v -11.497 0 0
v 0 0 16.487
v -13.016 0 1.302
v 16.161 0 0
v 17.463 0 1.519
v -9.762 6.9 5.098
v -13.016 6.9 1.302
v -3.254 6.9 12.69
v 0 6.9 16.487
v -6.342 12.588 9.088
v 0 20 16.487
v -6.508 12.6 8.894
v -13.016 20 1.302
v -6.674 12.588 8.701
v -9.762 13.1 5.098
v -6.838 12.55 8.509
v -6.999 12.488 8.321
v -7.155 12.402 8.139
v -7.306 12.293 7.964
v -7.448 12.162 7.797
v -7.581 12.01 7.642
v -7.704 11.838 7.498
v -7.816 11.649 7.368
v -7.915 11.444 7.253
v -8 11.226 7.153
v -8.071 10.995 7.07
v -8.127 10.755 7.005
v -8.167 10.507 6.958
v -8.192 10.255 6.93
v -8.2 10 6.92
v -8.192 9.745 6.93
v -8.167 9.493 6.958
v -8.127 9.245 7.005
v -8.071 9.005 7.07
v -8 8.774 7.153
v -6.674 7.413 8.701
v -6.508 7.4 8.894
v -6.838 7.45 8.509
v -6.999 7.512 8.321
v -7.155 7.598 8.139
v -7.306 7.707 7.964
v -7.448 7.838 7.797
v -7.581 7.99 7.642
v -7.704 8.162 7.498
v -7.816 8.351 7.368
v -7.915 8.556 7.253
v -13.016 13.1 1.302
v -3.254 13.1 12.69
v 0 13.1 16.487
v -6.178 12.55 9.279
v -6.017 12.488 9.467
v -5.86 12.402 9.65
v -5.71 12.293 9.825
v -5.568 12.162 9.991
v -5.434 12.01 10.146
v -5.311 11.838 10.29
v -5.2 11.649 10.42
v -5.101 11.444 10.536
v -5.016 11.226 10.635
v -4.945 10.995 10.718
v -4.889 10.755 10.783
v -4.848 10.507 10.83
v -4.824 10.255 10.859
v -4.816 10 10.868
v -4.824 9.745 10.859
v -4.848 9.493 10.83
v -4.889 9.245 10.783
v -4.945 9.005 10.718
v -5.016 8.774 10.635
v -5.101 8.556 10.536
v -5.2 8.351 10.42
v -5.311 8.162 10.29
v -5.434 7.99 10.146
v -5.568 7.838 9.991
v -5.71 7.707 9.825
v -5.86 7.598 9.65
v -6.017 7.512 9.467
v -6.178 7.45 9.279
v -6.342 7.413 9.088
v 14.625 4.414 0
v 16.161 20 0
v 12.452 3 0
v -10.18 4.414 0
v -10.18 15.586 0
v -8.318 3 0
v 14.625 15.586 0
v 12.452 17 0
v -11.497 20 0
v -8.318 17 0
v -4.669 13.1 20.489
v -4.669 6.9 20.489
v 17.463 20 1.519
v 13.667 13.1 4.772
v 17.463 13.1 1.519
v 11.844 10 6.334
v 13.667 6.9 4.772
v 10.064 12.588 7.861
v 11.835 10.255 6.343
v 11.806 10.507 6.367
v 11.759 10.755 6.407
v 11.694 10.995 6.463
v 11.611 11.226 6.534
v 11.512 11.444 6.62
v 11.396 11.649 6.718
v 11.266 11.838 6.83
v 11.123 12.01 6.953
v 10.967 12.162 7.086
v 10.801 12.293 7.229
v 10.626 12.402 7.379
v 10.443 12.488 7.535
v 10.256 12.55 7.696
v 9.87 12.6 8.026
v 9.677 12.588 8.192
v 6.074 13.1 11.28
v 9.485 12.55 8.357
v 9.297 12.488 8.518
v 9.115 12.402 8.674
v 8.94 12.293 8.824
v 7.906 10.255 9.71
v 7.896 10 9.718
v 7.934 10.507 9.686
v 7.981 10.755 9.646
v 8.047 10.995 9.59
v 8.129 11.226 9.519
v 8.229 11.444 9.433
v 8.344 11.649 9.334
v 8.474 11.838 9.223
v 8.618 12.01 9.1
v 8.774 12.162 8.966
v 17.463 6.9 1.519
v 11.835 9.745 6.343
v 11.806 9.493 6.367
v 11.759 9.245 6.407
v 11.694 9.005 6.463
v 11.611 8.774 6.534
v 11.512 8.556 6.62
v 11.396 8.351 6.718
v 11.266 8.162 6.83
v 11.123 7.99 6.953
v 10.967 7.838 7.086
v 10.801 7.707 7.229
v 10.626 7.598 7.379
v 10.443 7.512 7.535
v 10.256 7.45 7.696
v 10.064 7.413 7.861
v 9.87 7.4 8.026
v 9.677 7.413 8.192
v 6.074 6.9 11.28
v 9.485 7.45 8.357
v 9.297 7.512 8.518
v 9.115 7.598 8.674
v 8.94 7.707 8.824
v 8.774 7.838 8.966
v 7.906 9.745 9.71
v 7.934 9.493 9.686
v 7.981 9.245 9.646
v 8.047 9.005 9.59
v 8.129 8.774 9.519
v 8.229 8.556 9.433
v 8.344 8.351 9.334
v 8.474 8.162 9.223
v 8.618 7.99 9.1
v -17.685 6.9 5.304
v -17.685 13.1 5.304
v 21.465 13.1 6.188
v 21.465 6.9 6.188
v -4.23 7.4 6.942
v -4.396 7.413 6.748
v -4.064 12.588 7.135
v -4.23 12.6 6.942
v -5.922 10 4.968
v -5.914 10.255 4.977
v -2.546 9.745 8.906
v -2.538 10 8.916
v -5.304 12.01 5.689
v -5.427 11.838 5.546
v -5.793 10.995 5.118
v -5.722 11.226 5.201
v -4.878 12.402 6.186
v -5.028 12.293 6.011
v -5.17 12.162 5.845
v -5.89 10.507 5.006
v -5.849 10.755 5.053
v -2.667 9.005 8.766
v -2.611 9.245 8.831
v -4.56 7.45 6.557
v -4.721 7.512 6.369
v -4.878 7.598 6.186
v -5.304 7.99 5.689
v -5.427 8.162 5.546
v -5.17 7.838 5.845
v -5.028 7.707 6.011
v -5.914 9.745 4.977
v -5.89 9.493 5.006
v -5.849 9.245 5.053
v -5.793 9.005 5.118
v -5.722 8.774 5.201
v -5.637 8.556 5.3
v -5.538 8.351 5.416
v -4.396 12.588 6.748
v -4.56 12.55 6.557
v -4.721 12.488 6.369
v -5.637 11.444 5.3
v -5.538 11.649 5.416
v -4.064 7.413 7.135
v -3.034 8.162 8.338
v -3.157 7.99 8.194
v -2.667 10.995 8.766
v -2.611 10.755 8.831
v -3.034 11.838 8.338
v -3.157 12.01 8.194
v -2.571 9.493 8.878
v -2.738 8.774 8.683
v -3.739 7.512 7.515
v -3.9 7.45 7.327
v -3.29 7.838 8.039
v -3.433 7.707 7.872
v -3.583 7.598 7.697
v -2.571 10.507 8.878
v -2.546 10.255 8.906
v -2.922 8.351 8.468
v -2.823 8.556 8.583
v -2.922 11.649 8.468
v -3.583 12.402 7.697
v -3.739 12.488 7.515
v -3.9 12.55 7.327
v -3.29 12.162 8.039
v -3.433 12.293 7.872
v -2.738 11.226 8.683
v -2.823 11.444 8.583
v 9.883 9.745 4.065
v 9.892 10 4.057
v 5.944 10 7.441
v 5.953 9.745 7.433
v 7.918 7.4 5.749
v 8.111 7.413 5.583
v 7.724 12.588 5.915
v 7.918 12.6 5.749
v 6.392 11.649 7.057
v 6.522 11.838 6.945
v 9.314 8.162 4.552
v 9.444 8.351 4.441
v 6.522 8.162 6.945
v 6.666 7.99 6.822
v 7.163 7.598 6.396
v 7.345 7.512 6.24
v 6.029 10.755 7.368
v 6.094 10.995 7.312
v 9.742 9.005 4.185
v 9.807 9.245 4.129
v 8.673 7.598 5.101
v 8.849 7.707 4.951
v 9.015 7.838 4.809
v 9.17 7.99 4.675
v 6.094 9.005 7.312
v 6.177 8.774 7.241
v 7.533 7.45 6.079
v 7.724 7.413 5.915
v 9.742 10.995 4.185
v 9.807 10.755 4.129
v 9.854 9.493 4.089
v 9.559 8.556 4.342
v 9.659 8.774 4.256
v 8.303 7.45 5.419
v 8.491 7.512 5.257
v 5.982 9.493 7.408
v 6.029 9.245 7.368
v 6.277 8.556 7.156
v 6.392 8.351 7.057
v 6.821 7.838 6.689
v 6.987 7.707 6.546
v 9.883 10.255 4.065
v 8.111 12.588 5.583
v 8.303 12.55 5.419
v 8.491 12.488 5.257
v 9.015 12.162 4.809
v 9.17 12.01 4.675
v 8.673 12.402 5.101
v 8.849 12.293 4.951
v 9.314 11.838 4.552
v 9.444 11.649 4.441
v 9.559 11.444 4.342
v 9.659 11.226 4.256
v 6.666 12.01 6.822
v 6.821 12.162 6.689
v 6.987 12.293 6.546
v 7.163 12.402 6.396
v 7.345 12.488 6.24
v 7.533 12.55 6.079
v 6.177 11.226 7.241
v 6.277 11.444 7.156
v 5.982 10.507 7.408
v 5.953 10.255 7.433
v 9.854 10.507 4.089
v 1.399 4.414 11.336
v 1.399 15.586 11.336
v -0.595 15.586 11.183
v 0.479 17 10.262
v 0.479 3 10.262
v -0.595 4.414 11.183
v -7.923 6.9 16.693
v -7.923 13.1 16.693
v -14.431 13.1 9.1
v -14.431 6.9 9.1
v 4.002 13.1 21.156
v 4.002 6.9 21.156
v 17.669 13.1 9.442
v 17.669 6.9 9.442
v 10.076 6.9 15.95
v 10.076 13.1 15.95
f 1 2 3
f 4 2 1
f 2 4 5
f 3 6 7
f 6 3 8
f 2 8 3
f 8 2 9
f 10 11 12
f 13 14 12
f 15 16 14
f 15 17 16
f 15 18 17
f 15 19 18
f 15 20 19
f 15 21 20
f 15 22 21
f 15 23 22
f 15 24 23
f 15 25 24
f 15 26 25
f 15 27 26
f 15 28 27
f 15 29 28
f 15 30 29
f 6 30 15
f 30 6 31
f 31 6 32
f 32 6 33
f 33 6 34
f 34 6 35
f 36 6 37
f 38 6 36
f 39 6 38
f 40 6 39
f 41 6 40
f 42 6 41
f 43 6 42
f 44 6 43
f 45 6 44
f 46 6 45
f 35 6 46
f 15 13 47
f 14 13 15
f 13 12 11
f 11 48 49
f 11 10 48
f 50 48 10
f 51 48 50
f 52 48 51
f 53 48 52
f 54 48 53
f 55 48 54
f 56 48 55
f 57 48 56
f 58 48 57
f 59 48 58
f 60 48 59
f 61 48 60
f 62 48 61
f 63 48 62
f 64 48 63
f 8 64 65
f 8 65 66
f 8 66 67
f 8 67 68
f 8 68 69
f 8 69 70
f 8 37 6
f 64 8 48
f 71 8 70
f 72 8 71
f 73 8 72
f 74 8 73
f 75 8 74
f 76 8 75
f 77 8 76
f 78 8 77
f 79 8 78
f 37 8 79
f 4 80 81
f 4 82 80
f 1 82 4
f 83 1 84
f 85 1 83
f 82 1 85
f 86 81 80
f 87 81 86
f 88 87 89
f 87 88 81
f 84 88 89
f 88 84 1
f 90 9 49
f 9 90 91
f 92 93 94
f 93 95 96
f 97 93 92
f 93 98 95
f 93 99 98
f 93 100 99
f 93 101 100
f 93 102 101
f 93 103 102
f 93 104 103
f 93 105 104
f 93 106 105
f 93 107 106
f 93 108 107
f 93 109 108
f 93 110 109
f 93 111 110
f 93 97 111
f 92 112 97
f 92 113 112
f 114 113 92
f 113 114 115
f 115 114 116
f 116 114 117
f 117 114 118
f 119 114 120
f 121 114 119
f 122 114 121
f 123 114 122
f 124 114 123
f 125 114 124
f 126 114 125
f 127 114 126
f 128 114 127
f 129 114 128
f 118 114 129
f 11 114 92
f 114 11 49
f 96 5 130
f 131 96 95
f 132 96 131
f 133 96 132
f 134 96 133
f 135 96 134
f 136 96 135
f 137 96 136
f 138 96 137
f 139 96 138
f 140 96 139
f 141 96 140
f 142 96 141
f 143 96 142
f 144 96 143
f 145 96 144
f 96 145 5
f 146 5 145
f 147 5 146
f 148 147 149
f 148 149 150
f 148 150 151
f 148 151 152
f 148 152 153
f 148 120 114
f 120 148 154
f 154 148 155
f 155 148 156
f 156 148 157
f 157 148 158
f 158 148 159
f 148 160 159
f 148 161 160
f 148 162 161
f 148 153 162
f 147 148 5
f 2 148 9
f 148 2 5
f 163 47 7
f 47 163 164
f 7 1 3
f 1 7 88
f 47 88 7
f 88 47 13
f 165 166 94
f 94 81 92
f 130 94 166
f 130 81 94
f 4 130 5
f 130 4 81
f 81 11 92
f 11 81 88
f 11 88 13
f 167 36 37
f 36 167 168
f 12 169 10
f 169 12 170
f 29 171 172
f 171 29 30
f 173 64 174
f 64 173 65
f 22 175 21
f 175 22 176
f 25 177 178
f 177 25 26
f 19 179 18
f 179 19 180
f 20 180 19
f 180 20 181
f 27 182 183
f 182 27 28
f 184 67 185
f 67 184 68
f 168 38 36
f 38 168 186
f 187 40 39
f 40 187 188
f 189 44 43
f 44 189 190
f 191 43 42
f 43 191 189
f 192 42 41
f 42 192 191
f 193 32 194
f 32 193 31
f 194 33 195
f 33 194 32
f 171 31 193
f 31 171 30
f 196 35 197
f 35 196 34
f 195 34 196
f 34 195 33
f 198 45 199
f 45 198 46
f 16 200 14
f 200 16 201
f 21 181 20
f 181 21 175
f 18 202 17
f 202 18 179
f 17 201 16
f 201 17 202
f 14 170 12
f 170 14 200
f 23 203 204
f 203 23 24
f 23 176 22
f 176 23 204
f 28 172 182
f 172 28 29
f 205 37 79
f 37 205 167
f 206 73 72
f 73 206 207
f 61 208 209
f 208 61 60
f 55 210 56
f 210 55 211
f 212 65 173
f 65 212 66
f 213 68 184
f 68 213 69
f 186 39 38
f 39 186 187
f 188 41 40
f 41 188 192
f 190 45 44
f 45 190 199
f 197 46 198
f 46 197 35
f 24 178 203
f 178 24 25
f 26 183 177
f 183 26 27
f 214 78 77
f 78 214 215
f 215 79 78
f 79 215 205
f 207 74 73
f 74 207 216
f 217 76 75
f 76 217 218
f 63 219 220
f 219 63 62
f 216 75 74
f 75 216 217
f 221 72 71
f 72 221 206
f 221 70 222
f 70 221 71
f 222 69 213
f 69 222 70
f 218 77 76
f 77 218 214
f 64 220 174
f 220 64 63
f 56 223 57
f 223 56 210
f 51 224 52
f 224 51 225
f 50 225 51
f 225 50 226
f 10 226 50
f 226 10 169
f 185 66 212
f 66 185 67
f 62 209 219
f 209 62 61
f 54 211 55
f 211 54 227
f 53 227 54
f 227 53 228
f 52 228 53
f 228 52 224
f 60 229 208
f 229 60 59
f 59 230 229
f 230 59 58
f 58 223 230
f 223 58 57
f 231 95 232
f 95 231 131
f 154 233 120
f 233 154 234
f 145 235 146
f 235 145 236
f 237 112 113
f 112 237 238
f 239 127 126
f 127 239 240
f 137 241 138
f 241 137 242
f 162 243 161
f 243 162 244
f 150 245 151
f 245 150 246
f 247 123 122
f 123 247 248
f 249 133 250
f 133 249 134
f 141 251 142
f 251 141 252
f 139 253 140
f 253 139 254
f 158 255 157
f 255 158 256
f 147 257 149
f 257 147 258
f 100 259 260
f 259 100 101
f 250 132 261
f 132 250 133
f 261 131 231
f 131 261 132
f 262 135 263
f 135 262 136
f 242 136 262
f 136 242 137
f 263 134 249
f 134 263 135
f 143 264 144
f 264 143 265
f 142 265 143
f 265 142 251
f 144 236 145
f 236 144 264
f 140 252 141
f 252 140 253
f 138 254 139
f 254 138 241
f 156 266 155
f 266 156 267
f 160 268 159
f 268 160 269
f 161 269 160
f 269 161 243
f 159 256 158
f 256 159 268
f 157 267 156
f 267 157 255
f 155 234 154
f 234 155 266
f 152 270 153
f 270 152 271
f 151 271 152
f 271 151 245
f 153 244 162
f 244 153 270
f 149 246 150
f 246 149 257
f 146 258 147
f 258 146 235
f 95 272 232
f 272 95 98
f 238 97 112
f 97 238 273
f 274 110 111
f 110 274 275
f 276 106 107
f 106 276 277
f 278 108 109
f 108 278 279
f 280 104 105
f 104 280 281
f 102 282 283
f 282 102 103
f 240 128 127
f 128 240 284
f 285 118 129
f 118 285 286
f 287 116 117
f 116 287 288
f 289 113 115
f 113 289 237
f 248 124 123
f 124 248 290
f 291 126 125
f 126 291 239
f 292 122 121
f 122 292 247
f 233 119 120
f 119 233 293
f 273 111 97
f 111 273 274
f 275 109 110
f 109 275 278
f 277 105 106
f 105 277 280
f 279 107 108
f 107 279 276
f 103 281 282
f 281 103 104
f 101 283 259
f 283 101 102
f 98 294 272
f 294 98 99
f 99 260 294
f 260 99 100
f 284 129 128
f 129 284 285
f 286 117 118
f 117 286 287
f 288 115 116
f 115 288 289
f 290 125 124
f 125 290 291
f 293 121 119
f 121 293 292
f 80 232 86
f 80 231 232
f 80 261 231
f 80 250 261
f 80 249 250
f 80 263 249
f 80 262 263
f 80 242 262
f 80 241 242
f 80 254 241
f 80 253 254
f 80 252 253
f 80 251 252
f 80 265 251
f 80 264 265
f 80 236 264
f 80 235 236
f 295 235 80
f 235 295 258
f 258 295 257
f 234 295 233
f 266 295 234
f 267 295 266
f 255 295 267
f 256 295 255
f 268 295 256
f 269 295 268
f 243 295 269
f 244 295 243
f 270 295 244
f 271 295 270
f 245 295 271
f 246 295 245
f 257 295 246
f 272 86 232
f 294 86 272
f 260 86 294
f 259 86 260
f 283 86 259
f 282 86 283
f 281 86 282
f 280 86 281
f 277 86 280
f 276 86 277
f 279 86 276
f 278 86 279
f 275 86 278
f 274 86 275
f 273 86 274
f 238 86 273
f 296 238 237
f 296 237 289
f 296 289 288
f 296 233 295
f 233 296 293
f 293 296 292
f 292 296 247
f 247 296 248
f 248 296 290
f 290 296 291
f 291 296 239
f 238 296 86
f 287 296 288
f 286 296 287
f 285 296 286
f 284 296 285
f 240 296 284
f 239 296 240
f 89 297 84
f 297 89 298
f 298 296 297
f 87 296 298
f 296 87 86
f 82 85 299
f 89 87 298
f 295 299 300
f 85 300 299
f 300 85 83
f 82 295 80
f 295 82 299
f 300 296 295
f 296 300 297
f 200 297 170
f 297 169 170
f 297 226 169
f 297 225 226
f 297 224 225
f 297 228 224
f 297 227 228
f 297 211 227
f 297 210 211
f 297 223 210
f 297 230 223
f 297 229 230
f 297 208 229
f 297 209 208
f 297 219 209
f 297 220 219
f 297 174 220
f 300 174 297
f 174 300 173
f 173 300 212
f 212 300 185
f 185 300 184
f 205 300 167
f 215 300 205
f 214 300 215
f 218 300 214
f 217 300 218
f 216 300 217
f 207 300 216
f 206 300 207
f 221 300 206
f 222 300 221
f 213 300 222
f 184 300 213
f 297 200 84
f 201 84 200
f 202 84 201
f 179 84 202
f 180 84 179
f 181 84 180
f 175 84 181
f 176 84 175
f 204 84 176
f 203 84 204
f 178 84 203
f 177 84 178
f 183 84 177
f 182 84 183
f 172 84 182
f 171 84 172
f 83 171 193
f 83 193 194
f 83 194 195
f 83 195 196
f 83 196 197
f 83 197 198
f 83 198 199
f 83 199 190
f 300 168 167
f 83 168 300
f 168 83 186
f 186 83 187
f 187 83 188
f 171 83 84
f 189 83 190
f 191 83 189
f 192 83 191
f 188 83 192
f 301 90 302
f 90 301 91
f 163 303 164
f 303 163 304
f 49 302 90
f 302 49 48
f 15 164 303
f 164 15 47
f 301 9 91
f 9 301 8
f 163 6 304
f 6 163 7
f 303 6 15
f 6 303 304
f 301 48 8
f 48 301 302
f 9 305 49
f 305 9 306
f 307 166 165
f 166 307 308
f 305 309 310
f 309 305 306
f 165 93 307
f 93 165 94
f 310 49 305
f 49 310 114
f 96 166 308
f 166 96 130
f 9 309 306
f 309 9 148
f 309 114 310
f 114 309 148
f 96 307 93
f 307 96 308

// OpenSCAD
// file: constants.scad
//
// Dimensions
//

// Tolerances
tol1 = 0.1;         // tight fit, one side
tol2 = 0.2;         // press fit, two side (i.e. diameters)
tol3 = 0.5;
tol4 = 1;
tol5 = 2;
tol6 = 3;           // feature spacing 1
tol7 = 4;           // feature spacing 2

echo();
echo(tol1 = tol1, "tight fit, one side");
echo(tol2 = tol2, "press fit, two side (i.e. diameters)");
echo(tol3 = tol3);
echo(tol4 = tol4);
echo(tol5 = tol5);
echo(tol6 = tol6, "feature spacing 1");
echo(tol7 = tol7, "feature spacing 2");

// Chamfers
chm1 = 1;           // screw, nut, linear bearing chamfers
chm2 = 2;           // roller bearing chamfers
chm3 = 4;           // edge chamfers
chm4 = 8;           // NEMA 17 chamfers

echo();
echo(chm1 = chm1);
echo(chm2 = chm2, "screw, nut, linear bearing, roller bearing chamfers");
echo(chm3 = chm3, "edge chamfers");
echo(chm4 = chm4, "NEMA 17 chamfers");
echo();

// Fillet Radii
fill1 = 1;
fill2 = 2;
fill3 = 3;

//
// Vitamins
//

// Plywood
ply_LX = 1;                   // plywood length in x direction, WIP
ply_LY = 1;                   // plywood length in y direction, WIP
ply_LZ = 0.375*25.4;          // plywood thickness

// Beam
beam_W = 20;                  // beam width
beam_SW = 6.2;                // beam slot width
beam_SD = 6.15;               // beam slot depth

// Fastners
//
// M3 from McMaster-Carr
fast_m3_D = 3;        // shaft diameter
fast_m3_HD = 5.5;     // head diameter
fast_m3_HH = 3;       // head height
fast_m3_HW = 2.5;     // head hex width
// M4 from McMaster-Carr
fast_m4_D = 4;        // shaft diameter
fast_m4_HD = 7;       // head diameter
fast_m4_HH = 4;       // head height
fast_m4_HW = 3;       // head hex width
// M5 from McMaster-Carr
fast_m5_D = 5;        // shaft diameter
fast_m5_HD = 8.5;     // head diameter
fast_m5_HH = 5;       // head height
fast_m5_HW = 4;       // head hex width

//
// Nuts
//
// ACME Lead Screw Brass Nut from ZYLtech
lnut_m8_ID = 8;           // inside diameter
lnut_m8_D1 = 10.2;        // diameter of lips
lnut_m8_OD = 22;          // outside diameter
lnut_m8_SPD = 16;         // mounting screw placement diameter
lnut_m8_SHD = 3.5;        // mounting screw hole diameter
lnut_m8_SD = fast_m3_D;   // mounting screw diameter
lnut_m8_L1 = 1.5;
lnut_m8_L2 = 3.5;
lnut_m8_L3 = 10;
lnut_m8_NS = 4;       // number of mounting screws
// M5 t slot nut
tnut_m5_L = 10;           // length, along slot direction
tnut_m5_W = 10;           // width, perpendicular to beam
tnut_m5_D = fast_m5_D;    // diameter of hole
// M3 hex nut from McMaster-Carr
hnut_m3_W = 5.5;      // hex width, flat side to flat side
hnut_m3_T = 2.5;      // thickness
// M4 hex nut from McMaster-Carr
hnut_m4_W = 7;        // hex width, flat side to flat side
hnut_m4_T = 3.2;      // thickness
// M5 hex nut from McMaster-Carr
hnut_m5_W = 8;        // hex width, flat side to flat side
hnut_m5_T = 4;        // thickness
// M4 square nut from McMaster-Carr
snut_m4_W = 7;        // square width, flat side to flat side
snut_m4_T = 3.2;      // thickness
// M5 square nut from McMaster-Carr
snut_m5_W = 8;        // square width, flat side to flat side
snut_m5_T = 4;        // thickness

//
// Bearing rods
//
rod_m10 = 10;       // diameter
rod_m12 = 12;       // diamter

//
// Bearings
//
// LM10UU from ZYLtech
line_m10_ID = 10;         // inside diameter
line_m10_OD = 19;         // outside diameter
line_m10_L = 29;          // length
// LM12UU from ZYLtech
line_m12_ID = 12;         // inside diameter
line_m12_OD = 20;         // outside diameter
line_m12_L = 30;          // length
// 608 roller bearing from ZYLtech
roll_608_ID = 8;          // inside diameter
roll_608_OD = 22;         // outside diameter
roll_608_T = 7;           // thickness

//
// Motors
//
// NEMA 17 from ZYLtech
nema_17_W = 42.3;             // motor body width
nema_17_T = 48;               // motor body thickness
nema_17_BD = 22;              // boss diameter
nema_17_BT = 2;               // boss thickness
nema_17_SD = 5;               // shaft diameter
nema_17_SL = 20;              // shaft length
nema_17_SKL = 15;             // shaft key length
nema_17_SKW = 4.5;            // shaft key width, flat side to top of
                              // semi-circle

nema_17_MSD = fast_m3_D;      // mounting screw diameter
nema_17_MSHD = fast_m3_HD;    // mount screw head diameter
nema_17_MSP = 31;             // mounting screw placement width
nema_17_MSL = 5;              // mounting screw length into motor
nema_17_NS = 4;               // number of mounting screws
nema_17_chm = 6;              // corner chamfer
// file: common.scad
include <constants.scad>
print_orientation = false;
//
// vitamin selection
//
// linear bearing selection
line_ID = line_m12_ID;
line_OD = line_m12_OD;
line_L = line_m12_L;
// rollering bearing selection
roll_ID = roll_608_ID;
roll_OD = roll_608_OD;
roll_T = roll_608_T;
// lead screw nut selection
lnut_ID = lnut_m8_ID;
lnut_D1 = lnut_m8_D1;
lnut_OD = lnut_m8_OD;
lnut_SPD = lnut_m8_SPD;
lnut_SD = lnut_m8_SD;
lnut_L1 = lnut_m8_L1;
lnut_L2 = lnut_m8_L2;
lnut_L3 = lnut_m8_L3;
lnut_NS = lnut_m8_NS;
// t slot nut selection
tnut_L = tnut_m5_L;
tnut_W = tnut_m5_W;
tnut_D = tnut_m5_D;
// bearing rod
rod_D = rod_m12;
// motor
nema_W = nema_17_W;
nema_T = nema_17_T;
nema_BD = nema_17_BD;
nema_BT = nema_17_BT;
nema_SD = nema_17_SD;
nema_SL = nema_17_SL;
nema_SKL = nema_17_SKL;
nema_SKW = nema_17_SKW;
nema_MSD = nema_17_MSD;
nema_MSHD = nema_17_MSHD;
nema_MSP = nema_17_MSP;
nema_MSL = nema_17_MSL;
nema_NS = nema_17_NS;
nema_chm = nema_17_chm;
// bracket fastner selection
brkt_D = fast_m5_D;
brkt_HD = fast_m5_HD;
// beam fastner selection
beam_D = fast_m5_D;


//
// Parts
//
// all parts
filament_color = "orange";
roll_fit = 0;                     // fit tolerance for roller bearing
line_fit = tol2;                  // fit tolerance for linear bearing
rod_fit = 0;                      // fit tolerance for bearing rod
lnut_fit = tol2;                  // fit tolerance for lead screw nut
lnut_S_fit = 0;                   // fit tolerance for lead screw nut screw
                                  // (the screws that hold the lead screw
                                  // nut in place)

nema_BD_fit = tol5;               // fit tolerance for boss of nema
nema_W_fit = tol2;                // fit tolerance for nema body
nema_MSD_fit = tol2;              // fit tolerance for nema mounting screw
                                  // shaft diameter

nema_MSHD_fit = tol2;             // fit tolerance for nema mounting screw
                                  // head diameter

exterior_padding = tol6;          // space between exterior wall and
                                  // feature

interior_y_padding = tol7;        // space between features in y direction
interior_z_padding = tol7;        // space between features in z direction
corner_chamfer = chm3;            // chamfer size of exterior corners
beam_F_CT = 3;                    // beam fastner clamping thickness
beam_F_fit = tol2;                // fit tolerance for fastner used with
                                  // beam

beam_fit = tol2;                  // fit tolerance for beam
beam_chm = chm1;

// x axis
x_carriage_rod_spacing = 43;                  // spacing between rods
x_carriage_corner_chamfer_leg = 20;           // large chamfer cut on main
                                              // body of x carriage pieces,
                                              // both left and right

x_carriage_interior_x_padding = tol5;         // interior spacing between
                                              // features in x direction

x_carriage_hole_chamfer = chm2;               // chamfer of hole cuts
// x carriage left
x_carriage_left_LX = 2*line_L + 2*chamfer_leg(x_carriage_hole_chamfer) + 
                     x_carriage_interior_x_padding;

x_carriage_left_LY = line_OD + 2*chamfer_leg(x_carriage_hole_chamfer) + 
                     2*exterior_padding;

x_carriage_left_LZ = 2*exterior_padding + 6*chamfer_leg(chm2) +
                     2*interior_z_padding + lnut_SD + lnut_SPD + line_OD +
                     rod_D + x_carriage_rod_spacing;

// x carriage right
x_carriage_right_LX = x_carriage_left_LX;
x_carriage_right_LY = x_carriage_left_LY;
x_carriage_right_LZ = x_carriage_left_LZ;
x_carriage_nema_MS_CT = 8.5;                  // NEMA motor mounting screw 
                                              // counter sink clamping
                                              // thickness

// bracket
//brkt_L1 = 3;          // length of lip
brkt_chm = chm2;      // chamfer
//brkt_CT = 3;          // bolt clamping thickness
brkt_F_CT = 3;        // fastner clamping thickness
//brkt_BO = 3;          // bolt offset
brkt_FO = 3;          // fastner offset
//brkt_B_fit = tol2;    // fit tolerance for bolt
brkt_F_fit = tol2;    // fit tolerance for fastner

// y axis
y_gusset_L = 45;              // y mount gusset length
y_gusset_T = 2;               // y mount gusset thickness
y_hole_chamfer = chm2;
// y motor mount
y_motor_mount_MS_CT = 8.5;                    // NEMA motor mounting screw 
                                              // counter sink clamping thickness

y_motor_mount_LX = nema_T + y_motor_mount_MS_CT;
y_motor_mount_LY = nema_W + 2*interior_y_padding + 2*y_gusset_T;
y_motor_mount_LZ = ply_LZ + interior_y_padding + nema_W/2 +
                   2*chamfer_leg(x_carriage_hole_chamfer) + lnut_SD/2 +
                   lnut_SPD/2 + interior_z_padding + line_OD/2 + rod_D/2 +
                   exterior_padding;

//
// Modules
//
// creates a hexagonal prism
// dw - either the diameter or width of the hexagon
// h - the height of the prism
// diameter - boolean of whether dw is the diameter or width
module hexagon(dw, h, diameter = false){
  if(diameter){
    for(r = [-60, 0, 60]){
      rotate([0, 0, r])
      translate([0, 0, h/2])
      cube([sqrt(3)*dw/2, dw/2, h], center = true);
    }
  } else {
    for(r = [-60, 0, 60]){
      rotate([0, 0, r])
      translate([0, 0, h/2])
      cube([dw, dw/sqrt(3), h], center = true);
    }
  }
}

// creates a solid used for cutting hole chamfers
// D - diameter of the hole for the chamfer, smaller diameter
// chm - chamfer length
module chamfer_cut(D, chm){
  translate([0, 0, -chamfer_leg(chm)-0.1])
  cylinder(d1 = D-0.2, d2 = D + 2*chamfer_leg(chm) + 0.2,
           h = chamfer_leg(chm) + 0.2);
}

// creates a NEMA motor body shaped solid
// W - width of the NEMA motor body
// T - thickness of NEMA motor body
// chm - chamfer on NEMA motor body
module nema_body(W, T, chm){
  chm_leg = chamfer_leg(chm);
  hull(){
    translate([chm_leg, chm_leg, 0])
    cylinder(r = chm_leg, h = T, $fn = 4);
    
    translate([W-chm_leg, chm_leg, 0])
    cylinder(r = chm_leg, h = T, $fn = 4);
    
    translate([W-chm_leg, W-chm_leg, 0])
    cylinder(r = chm_leg, h = T, $fn = 4);
    
    translate([chm_leg, W-chm_leg, 0])
    cylinder(r = chm_leg, h = T, $fn = 4);
  }
}

//
// Functions
//
// calculates the chamfer leg sizes, returns length of leg of chamfer triangle
// chamfer - the hypotenuse length of chamfer triangle
// angle - angle of the chamfer
// other_leg - for angles other than 45, gives the leg length of the other leg
//             of the chamfer triangle
function chamfer_leg(chamfer, angle = 45, other_leg = false) = 
    (!other_leg) ? chamfer*sin(angle) : chamfer*cos(angle);
// main file
include <common.scad>

bracket(true);

module bracket(print_orientation = false){
  $fn = 64;
  angle = atan2(beam_W - brkt_chm, beam_W + brkt_FO - brkt_chm);
  
  color(filament_color)
  if(print_orientation){
    translate([0, 0, beam_W*sin(90 - angle) + brkt_chm*cos(90 - angle)])
    rotate([-90, angle, 0])
    body();
  } else {
    body();
  }

  module body(){
    union(){
      difference(){
        linear_extrude(height = beam_W){
         polygon([[0, 0],
                  [beam_W + brkt_FO, 0],
                  [beam_W + brkt_FO, brkt_chm],
                  [brkt_chm, beam_W],
                  [0, beam_W]]);
        }
        
        translate([-0.1, beam_W/2, beam_W/2])
        rotate([0, 90, 0])
        cylinder(d = brkt_D + brkt_F_fit, h = beam_W + brkt_FO);

        translate([beam_W/2 + brkt_FO, -0.1, beam_W/2])
        rotate([-90, 0, 0])
        cylinder(d = brkt_D + brkt_F_fit, h = beam_W+brkt_FO);
        
        translate([brkt_F_CT, brkt_F_CT, brkt_F_CT])
        hull(){
          translate([chamfer_leg(brkt_chm),
                     chamfer_leg(brkt_chm),
                     chamfer_leg(brkt_chm)])
          cylinder(r = chamfer_leg(brkt_chm),
                   h = beam_W - 2*brkt_F_CT - 2*chamfer_leg(brkt_chm),
                   $fn = 4);

          translate([chamfer_leg(brkt_chm),
                     chamfer_leg(brkt_chm),
                     chamfer_leg(brkt_chm)])
          rotate([0, 90, 0])
          cylinder(r = chamfer_leg(brkt_chm), h = beam_W + brkt_FO, $fn = 4);

          translate([chamfer_leg(brkt_chm),
                     chamfer_leg(brkt_chm),
                     chamfer_leg(brkt_chm)])
          rotate([-90, 0, 0])
          cylinder(r = chamfer_leg(brkt_chm), h = beam_W + brkt_FO, $fn = 4);

          translate([chamfer_leg(brkt_chm),
                     chamfer_leg(brkt_chm),
                     beam_W - 2*brkt_F_CT - chamfer_leg(brkt_chm)])
          rotate([0, 90, 0])
          cylinder(r = chamfer_leg(brkt_chm), h = beam_W + brkt_FO, $fn = 4);

          translate([chamfer_leg(brkt_chm),
                     chamfer_leg(brkt_chm),
                     beam_W - 2*brkt_F_CT - chamfer_leg(brkt_chm)])
          rotate([-90, 0, 0])
          cylinder(r = chamfer_leg(brkt_chm),
                   h=beam_W + brkt_FO, $fn = 4);
        }
      }

      translate([0, beam_W, beam_W/2 - beam_SW/2])
      rotate([90, 0, -90])
      slot_nibs(beam_W);

      translate([0, 0, beam_W/2 - beam_SW/2])
      rotate([90, 0, 0])
      slot_nibs(beam_W, brkt_FO);
    }

    module slot_nibs(L, OF = 0){
      difference(){
        cube([L + OF, beam_SW, beam_SD]);
        translate([(L - tnut_L)/2 + OF, -0.1, -0.1])
        cube([tnut_L, beam_SW + 0.2, beam_SD + 0.2]);
      }
    }
  }
}
